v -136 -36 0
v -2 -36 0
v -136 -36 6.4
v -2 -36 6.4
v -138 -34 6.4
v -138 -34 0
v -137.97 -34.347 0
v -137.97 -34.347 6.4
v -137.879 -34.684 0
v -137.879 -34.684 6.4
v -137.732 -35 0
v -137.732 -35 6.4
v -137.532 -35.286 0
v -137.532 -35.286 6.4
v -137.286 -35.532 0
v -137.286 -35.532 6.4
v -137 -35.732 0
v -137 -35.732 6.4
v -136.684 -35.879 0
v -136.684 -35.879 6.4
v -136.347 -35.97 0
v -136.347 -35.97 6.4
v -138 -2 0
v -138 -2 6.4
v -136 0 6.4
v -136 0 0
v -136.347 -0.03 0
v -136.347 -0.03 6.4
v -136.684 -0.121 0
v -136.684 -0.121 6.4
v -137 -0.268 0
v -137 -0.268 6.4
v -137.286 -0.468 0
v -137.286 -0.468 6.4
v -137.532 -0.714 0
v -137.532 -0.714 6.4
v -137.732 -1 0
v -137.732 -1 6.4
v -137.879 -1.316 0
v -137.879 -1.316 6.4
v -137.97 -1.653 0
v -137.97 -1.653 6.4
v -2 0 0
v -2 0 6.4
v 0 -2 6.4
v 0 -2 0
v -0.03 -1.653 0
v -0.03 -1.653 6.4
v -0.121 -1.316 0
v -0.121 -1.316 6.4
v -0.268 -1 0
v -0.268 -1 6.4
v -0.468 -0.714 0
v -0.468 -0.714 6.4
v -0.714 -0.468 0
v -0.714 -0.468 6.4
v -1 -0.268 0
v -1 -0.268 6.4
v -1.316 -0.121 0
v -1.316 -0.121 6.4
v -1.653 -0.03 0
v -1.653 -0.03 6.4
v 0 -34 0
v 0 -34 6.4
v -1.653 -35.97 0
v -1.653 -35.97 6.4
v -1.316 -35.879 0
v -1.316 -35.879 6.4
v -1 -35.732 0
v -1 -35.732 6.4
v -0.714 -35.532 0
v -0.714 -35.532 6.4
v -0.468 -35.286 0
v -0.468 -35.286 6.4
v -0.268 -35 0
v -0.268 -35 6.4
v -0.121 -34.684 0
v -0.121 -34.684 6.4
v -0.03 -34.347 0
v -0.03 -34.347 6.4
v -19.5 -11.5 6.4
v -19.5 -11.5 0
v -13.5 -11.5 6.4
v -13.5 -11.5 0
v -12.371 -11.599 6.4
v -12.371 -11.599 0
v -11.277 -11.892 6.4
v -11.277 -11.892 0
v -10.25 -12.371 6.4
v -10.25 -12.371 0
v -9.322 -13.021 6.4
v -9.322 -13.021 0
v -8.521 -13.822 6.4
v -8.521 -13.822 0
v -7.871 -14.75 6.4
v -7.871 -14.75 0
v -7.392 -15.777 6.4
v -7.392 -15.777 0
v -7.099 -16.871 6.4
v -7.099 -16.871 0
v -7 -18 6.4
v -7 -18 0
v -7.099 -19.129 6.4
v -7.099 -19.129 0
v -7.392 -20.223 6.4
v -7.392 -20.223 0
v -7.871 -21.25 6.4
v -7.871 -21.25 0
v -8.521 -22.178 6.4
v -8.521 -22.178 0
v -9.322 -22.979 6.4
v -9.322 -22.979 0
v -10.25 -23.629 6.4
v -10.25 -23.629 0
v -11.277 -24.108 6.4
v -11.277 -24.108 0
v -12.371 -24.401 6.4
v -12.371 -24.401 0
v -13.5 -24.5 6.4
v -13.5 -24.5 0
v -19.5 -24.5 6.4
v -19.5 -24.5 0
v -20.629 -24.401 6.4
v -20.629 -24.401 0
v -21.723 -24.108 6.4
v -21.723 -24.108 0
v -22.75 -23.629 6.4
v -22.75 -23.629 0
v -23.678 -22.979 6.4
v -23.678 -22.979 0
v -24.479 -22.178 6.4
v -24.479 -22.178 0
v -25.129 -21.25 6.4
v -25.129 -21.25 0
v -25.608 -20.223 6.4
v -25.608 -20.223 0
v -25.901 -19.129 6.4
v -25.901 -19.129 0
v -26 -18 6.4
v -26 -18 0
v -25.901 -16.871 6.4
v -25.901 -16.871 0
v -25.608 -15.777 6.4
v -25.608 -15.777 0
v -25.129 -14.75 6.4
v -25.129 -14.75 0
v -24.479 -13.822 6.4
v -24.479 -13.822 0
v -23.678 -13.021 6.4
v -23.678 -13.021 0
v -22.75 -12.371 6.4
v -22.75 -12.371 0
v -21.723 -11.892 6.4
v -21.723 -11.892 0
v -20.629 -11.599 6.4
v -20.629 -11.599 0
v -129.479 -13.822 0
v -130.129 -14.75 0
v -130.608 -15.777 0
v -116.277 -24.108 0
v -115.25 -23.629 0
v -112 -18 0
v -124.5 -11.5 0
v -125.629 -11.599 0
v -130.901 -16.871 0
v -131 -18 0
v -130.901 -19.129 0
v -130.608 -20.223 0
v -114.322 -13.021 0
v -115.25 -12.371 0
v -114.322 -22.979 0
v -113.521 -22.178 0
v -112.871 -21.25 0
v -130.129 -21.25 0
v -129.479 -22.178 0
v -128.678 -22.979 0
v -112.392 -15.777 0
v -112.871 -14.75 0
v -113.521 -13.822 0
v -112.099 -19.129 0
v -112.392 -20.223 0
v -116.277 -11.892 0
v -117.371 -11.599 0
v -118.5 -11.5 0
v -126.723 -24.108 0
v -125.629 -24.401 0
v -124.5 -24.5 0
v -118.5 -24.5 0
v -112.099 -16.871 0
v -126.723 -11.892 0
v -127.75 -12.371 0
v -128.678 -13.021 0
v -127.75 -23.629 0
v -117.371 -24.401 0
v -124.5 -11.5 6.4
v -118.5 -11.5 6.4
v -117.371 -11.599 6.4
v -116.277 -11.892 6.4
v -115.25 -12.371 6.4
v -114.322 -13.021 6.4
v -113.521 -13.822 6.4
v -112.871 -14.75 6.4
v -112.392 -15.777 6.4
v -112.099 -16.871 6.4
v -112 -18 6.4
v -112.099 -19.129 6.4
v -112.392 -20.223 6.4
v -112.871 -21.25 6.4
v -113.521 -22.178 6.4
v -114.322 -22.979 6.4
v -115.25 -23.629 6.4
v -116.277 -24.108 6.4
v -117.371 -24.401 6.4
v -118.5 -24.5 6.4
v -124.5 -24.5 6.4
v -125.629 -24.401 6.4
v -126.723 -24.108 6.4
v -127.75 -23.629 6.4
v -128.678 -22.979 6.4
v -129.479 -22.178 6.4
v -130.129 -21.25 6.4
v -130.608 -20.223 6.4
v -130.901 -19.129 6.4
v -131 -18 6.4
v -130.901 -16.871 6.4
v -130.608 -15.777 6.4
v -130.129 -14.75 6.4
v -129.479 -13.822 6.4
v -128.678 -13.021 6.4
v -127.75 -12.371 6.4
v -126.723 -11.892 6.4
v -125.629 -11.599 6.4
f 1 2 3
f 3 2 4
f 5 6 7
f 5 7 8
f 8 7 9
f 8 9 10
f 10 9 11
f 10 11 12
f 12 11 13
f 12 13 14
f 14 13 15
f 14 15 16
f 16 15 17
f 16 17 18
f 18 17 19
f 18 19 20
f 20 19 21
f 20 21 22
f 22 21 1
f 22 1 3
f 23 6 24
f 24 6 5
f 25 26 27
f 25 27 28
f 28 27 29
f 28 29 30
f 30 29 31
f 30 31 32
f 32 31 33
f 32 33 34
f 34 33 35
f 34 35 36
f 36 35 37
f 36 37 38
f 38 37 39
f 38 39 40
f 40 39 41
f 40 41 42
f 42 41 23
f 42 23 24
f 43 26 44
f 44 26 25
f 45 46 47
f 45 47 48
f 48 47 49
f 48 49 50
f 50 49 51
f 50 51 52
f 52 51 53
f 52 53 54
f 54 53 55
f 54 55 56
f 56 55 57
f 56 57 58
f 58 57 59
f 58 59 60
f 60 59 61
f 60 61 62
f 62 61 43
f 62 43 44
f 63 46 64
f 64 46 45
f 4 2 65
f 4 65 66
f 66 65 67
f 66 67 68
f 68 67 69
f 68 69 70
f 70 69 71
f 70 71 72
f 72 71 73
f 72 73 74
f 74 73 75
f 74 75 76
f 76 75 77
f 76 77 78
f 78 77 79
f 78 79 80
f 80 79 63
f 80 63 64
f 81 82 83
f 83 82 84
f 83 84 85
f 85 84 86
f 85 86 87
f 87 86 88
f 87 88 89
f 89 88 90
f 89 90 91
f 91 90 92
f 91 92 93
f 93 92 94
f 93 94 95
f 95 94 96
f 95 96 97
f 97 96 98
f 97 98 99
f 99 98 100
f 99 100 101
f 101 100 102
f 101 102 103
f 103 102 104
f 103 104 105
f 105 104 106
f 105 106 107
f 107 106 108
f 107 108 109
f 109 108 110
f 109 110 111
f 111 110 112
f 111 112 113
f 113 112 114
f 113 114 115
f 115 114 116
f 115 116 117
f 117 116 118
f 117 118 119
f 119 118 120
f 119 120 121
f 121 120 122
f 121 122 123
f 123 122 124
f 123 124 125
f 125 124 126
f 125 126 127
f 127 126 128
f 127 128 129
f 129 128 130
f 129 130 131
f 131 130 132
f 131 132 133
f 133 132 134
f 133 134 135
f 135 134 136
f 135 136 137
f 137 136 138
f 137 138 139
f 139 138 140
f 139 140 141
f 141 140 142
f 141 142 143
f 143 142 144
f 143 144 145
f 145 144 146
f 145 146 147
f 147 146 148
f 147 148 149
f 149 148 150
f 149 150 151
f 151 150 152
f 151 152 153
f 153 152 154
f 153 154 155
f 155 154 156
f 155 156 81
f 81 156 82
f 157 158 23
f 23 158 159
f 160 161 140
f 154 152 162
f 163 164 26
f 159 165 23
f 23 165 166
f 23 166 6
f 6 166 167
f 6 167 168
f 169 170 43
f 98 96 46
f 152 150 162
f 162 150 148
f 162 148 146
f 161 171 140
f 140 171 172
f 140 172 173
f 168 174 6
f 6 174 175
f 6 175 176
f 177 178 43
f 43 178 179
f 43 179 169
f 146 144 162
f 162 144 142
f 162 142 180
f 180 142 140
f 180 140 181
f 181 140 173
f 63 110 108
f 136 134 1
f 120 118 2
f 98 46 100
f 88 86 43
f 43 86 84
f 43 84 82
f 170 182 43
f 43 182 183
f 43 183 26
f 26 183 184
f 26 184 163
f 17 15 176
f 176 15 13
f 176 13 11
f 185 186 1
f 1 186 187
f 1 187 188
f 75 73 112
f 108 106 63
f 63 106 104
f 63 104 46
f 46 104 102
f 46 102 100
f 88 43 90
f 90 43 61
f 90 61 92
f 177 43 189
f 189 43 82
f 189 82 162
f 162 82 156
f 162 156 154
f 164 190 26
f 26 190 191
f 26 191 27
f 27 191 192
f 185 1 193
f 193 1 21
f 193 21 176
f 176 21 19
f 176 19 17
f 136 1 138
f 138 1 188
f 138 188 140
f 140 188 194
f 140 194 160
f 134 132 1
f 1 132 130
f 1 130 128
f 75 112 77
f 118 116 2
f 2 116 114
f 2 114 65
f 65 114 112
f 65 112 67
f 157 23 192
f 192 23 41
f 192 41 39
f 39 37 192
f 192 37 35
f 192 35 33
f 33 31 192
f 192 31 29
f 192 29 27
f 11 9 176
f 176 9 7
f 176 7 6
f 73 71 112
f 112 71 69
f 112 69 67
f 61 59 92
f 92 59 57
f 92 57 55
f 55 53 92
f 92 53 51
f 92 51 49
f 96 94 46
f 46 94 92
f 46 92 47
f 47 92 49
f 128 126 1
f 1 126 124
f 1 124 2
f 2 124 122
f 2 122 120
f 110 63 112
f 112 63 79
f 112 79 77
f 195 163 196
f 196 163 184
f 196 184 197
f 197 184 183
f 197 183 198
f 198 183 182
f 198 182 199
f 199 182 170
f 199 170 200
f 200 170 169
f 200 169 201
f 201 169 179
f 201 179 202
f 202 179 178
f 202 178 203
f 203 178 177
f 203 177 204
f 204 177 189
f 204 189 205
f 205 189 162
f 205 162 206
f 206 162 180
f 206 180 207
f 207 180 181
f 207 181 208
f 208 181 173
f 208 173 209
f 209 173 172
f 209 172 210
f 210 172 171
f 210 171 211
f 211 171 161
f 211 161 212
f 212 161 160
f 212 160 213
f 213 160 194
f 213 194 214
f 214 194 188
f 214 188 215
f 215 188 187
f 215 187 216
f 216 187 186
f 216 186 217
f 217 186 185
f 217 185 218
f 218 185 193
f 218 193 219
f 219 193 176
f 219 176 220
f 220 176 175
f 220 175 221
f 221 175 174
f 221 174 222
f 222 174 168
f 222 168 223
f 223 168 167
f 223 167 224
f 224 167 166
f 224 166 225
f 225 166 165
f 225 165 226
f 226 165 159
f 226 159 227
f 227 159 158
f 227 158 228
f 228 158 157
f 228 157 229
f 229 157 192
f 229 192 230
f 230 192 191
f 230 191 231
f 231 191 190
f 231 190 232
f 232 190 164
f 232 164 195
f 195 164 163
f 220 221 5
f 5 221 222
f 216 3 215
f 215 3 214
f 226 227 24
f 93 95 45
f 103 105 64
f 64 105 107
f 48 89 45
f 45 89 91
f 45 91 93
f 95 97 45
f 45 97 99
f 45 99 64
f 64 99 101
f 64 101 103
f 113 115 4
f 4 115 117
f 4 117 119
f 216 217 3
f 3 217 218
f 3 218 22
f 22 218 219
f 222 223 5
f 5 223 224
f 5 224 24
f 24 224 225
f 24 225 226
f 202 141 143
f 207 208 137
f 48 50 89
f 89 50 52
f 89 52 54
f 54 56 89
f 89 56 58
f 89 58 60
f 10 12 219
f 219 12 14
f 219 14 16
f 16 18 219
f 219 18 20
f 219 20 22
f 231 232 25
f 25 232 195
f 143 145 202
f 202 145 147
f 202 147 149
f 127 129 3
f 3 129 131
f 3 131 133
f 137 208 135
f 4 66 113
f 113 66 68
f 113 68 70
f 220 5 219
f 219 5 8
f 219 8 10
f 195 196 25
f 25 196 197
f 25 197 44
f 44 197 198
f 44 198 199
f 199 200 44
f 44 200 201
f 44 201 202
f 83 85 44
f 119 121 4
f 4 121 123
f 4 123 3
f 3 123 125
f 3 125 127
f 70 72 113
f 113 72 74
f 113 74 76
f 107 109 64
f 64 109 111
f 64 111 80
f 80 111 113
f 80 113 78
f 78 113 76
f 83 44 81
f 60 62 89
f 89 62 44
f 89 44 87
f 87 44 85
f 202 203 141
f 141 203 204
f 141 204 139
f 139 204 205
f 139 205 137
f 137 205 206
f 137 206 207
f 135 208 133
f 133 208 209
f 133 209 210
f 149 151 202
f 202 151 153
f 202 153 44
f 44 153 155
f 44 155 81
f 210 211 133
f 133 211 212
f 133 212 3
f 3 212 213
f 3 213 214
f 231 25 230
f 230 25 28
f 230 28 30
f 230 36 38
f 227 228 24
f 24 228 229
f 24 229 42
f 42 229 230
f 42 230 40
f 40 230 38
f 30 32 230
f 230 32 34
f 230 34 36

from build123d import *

# Parameters (mm, degrees)
ESTRUSIONE_ESTRUSIONE1_DEPTH = 6.4


with BuildPart() as part:
    # Schizzo1 → Estrusione-Estrusione1 (new body)
    with BuildSketch(Plane.XY):
        with BuildLine():
            Line((0, -34), (0, -2))
            ThreePointArc((0, -2), (-0.585786438, -0.585786438), (-2, 0))
            Line((-2, 0), (-40, 0))
            Line((-40, 0), (-98, 0))
            Line((-98, 0), (-136, 0))
            ThreePointArc((-136, 0), (-137.414213562, -0.585786438), (-138, -2))
            Line((-138, -2), (-138, -34))
            ThreePointArc((-138, -34), (-137.414213562, -35.414213562), (-136, -36))
            Line((-136, -36), (-98, -36))
            Line((-98, -36), (-40, -36))
            Line((-40, -36), (-2, -36))
            ThreePointArc((-2, -36), (-0.585786438, -35.414213562), (0, -34))
        make_face()
        with BuildLine():
            Line((-19.5, -24.5), (-13.5, -24.5))
            ThreePointArc((-13.5, -24.5), (-7, -18), (-13.5, -11.5))
            Line((-13.5, -11.5), (-19.5, -11.5))
            ThreePointArc((-19.5, -11.5), (-26, -18), (-19.5, -24.5))
        make_face(mode=Mode.SUBTRACT)
        with BuildLine():
            Line((-124.5, -24.5), (-118.5, -24.5))
            ThreePointArc((-118.5, -24.5), (-112, -18), (-118.5, -11.5))
            Line((-118.5, -11.5), (-124.5, -11.5))
            ThreePointArc((-124.5, -11.5), (-131, -18), (-124.5, -24.5))
        make_face(mode=Mode.SUBTRACT)
    extrude(amount=ESTRUSIONE_ESTRUSIONE1_DEPTH)


solid = part.part
